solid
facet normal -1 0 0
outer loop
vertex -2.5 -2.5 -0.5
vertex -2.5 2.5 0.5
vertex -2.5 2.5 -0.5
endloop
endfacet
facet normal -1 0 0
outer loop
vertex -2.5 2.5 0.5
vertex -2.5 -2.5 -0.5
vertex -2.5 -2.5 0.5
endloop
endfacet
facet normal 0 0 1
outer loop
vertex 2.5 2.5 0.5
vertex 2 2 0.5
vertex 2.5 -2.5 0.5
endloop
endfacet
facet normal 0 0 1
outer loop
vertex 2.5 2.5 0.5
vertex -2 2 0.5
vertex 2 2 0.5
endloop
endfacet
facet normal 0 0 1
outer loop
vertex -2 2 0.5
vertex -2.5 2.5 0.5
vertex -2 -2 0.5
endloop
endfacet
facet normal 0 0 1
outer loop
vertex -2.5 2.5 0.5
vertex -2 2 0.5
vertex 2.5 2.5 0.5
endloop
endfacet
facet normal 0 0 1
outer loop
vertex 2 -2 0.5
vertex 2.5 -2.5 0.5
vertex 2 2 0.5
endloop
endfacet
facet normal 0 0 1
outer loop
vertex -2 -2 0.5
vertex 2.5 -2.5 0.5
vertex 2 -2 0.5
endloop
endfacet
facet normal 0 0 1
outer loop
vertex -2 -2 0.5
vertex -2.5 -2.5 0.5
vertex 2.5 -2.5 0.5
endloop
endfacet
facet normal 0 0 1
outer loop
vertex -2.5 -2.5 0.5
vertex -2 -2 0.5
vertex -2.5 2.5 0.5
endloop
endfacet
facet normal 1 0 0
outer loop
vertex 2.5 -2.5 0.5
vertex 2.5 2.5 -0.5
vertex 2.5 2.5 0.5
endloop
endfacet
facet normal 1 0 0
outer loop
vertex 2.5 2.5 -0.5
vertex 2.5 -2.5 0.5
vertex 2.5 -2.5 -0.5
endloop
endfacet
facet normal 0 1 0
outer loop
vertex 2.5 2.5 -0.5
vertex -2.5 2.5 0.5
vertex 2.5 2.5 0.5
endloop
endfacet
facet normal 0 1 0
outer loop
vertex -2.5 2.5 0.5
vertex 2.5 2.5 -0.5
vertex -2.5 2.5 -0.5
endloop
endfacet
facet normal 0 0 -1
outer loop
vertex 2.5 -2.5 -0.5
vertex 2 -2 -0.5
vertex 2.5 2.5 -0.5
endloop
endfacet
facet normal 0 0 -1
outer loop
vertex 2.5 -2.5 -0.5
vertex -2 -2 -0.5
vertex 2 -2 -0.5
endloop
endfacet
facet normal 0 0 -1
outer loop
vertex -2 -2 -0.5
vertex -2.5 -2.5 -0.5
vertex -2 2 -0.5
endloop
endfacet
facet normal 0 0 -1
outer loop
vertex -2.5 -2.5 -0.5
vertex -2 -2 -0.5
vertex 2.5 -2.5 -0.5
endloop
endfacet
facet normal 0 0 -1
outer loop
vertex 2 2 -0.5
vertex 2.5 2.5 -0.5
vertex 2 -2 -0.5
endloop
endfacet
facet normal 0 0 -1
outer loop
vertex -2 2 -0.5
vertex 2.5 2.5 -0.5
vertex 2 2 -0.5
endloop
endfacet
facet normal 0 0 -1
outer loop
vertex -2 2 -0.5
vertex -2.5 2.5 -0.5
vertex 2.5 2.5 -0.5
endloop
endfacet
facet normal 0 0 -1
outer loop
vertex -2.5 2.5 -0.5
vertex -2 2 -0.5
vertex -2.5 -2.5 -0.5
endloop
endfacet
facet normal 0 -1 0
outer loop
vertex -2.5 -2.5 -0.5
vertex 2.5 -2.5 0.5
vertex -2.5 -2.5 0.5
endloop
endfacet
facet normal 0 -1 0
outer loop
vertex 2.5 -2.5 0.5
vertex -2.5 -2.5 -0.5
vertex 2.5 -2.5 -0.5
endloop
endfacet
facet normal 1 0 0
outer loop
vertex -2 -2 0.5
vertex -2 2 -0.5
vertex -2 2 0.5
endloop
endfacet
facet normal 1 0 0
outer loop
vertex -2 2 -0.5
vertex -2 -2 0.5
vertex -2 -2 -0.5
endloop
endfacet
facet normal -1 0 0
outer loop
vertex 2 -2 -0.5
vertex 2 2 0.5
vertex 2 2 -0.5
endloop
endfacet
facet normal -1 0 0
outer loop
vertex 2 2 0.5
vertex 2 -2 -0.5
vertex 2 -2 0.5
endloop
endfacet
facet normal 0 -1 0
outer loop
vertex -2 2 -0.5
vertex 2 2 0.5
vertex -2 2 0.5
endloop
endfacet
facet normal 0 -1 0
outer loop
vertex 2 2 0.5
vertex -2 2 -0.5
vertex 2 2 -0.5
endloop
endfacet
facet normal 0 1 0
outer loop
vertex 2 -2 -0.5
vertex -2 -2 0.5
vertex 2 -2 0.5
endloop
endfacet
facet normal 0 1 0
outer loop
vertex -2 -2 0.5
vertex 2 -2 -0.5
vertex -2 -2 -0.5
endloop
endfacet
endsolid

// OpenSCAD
//
// A maze
//
// @author Natesh Narain <nnaraindev@gmail.com>
// @date Dev 24 2020
//

// Units are in meters
border_height = 1;
border_size = 5;
border_thickness = 0.5;

interior_size = border_size - (2 * border_thickness);

bind = 0.01;

module maze() {
    difference(){
        cube(size=[border_size, border_size, border_height], center=true);
        translate([0, 0, -bind])
            cube(size=[interior_size, interior_size, border_height + (2.5 * bind)], center=true);
    }
}

maze();
